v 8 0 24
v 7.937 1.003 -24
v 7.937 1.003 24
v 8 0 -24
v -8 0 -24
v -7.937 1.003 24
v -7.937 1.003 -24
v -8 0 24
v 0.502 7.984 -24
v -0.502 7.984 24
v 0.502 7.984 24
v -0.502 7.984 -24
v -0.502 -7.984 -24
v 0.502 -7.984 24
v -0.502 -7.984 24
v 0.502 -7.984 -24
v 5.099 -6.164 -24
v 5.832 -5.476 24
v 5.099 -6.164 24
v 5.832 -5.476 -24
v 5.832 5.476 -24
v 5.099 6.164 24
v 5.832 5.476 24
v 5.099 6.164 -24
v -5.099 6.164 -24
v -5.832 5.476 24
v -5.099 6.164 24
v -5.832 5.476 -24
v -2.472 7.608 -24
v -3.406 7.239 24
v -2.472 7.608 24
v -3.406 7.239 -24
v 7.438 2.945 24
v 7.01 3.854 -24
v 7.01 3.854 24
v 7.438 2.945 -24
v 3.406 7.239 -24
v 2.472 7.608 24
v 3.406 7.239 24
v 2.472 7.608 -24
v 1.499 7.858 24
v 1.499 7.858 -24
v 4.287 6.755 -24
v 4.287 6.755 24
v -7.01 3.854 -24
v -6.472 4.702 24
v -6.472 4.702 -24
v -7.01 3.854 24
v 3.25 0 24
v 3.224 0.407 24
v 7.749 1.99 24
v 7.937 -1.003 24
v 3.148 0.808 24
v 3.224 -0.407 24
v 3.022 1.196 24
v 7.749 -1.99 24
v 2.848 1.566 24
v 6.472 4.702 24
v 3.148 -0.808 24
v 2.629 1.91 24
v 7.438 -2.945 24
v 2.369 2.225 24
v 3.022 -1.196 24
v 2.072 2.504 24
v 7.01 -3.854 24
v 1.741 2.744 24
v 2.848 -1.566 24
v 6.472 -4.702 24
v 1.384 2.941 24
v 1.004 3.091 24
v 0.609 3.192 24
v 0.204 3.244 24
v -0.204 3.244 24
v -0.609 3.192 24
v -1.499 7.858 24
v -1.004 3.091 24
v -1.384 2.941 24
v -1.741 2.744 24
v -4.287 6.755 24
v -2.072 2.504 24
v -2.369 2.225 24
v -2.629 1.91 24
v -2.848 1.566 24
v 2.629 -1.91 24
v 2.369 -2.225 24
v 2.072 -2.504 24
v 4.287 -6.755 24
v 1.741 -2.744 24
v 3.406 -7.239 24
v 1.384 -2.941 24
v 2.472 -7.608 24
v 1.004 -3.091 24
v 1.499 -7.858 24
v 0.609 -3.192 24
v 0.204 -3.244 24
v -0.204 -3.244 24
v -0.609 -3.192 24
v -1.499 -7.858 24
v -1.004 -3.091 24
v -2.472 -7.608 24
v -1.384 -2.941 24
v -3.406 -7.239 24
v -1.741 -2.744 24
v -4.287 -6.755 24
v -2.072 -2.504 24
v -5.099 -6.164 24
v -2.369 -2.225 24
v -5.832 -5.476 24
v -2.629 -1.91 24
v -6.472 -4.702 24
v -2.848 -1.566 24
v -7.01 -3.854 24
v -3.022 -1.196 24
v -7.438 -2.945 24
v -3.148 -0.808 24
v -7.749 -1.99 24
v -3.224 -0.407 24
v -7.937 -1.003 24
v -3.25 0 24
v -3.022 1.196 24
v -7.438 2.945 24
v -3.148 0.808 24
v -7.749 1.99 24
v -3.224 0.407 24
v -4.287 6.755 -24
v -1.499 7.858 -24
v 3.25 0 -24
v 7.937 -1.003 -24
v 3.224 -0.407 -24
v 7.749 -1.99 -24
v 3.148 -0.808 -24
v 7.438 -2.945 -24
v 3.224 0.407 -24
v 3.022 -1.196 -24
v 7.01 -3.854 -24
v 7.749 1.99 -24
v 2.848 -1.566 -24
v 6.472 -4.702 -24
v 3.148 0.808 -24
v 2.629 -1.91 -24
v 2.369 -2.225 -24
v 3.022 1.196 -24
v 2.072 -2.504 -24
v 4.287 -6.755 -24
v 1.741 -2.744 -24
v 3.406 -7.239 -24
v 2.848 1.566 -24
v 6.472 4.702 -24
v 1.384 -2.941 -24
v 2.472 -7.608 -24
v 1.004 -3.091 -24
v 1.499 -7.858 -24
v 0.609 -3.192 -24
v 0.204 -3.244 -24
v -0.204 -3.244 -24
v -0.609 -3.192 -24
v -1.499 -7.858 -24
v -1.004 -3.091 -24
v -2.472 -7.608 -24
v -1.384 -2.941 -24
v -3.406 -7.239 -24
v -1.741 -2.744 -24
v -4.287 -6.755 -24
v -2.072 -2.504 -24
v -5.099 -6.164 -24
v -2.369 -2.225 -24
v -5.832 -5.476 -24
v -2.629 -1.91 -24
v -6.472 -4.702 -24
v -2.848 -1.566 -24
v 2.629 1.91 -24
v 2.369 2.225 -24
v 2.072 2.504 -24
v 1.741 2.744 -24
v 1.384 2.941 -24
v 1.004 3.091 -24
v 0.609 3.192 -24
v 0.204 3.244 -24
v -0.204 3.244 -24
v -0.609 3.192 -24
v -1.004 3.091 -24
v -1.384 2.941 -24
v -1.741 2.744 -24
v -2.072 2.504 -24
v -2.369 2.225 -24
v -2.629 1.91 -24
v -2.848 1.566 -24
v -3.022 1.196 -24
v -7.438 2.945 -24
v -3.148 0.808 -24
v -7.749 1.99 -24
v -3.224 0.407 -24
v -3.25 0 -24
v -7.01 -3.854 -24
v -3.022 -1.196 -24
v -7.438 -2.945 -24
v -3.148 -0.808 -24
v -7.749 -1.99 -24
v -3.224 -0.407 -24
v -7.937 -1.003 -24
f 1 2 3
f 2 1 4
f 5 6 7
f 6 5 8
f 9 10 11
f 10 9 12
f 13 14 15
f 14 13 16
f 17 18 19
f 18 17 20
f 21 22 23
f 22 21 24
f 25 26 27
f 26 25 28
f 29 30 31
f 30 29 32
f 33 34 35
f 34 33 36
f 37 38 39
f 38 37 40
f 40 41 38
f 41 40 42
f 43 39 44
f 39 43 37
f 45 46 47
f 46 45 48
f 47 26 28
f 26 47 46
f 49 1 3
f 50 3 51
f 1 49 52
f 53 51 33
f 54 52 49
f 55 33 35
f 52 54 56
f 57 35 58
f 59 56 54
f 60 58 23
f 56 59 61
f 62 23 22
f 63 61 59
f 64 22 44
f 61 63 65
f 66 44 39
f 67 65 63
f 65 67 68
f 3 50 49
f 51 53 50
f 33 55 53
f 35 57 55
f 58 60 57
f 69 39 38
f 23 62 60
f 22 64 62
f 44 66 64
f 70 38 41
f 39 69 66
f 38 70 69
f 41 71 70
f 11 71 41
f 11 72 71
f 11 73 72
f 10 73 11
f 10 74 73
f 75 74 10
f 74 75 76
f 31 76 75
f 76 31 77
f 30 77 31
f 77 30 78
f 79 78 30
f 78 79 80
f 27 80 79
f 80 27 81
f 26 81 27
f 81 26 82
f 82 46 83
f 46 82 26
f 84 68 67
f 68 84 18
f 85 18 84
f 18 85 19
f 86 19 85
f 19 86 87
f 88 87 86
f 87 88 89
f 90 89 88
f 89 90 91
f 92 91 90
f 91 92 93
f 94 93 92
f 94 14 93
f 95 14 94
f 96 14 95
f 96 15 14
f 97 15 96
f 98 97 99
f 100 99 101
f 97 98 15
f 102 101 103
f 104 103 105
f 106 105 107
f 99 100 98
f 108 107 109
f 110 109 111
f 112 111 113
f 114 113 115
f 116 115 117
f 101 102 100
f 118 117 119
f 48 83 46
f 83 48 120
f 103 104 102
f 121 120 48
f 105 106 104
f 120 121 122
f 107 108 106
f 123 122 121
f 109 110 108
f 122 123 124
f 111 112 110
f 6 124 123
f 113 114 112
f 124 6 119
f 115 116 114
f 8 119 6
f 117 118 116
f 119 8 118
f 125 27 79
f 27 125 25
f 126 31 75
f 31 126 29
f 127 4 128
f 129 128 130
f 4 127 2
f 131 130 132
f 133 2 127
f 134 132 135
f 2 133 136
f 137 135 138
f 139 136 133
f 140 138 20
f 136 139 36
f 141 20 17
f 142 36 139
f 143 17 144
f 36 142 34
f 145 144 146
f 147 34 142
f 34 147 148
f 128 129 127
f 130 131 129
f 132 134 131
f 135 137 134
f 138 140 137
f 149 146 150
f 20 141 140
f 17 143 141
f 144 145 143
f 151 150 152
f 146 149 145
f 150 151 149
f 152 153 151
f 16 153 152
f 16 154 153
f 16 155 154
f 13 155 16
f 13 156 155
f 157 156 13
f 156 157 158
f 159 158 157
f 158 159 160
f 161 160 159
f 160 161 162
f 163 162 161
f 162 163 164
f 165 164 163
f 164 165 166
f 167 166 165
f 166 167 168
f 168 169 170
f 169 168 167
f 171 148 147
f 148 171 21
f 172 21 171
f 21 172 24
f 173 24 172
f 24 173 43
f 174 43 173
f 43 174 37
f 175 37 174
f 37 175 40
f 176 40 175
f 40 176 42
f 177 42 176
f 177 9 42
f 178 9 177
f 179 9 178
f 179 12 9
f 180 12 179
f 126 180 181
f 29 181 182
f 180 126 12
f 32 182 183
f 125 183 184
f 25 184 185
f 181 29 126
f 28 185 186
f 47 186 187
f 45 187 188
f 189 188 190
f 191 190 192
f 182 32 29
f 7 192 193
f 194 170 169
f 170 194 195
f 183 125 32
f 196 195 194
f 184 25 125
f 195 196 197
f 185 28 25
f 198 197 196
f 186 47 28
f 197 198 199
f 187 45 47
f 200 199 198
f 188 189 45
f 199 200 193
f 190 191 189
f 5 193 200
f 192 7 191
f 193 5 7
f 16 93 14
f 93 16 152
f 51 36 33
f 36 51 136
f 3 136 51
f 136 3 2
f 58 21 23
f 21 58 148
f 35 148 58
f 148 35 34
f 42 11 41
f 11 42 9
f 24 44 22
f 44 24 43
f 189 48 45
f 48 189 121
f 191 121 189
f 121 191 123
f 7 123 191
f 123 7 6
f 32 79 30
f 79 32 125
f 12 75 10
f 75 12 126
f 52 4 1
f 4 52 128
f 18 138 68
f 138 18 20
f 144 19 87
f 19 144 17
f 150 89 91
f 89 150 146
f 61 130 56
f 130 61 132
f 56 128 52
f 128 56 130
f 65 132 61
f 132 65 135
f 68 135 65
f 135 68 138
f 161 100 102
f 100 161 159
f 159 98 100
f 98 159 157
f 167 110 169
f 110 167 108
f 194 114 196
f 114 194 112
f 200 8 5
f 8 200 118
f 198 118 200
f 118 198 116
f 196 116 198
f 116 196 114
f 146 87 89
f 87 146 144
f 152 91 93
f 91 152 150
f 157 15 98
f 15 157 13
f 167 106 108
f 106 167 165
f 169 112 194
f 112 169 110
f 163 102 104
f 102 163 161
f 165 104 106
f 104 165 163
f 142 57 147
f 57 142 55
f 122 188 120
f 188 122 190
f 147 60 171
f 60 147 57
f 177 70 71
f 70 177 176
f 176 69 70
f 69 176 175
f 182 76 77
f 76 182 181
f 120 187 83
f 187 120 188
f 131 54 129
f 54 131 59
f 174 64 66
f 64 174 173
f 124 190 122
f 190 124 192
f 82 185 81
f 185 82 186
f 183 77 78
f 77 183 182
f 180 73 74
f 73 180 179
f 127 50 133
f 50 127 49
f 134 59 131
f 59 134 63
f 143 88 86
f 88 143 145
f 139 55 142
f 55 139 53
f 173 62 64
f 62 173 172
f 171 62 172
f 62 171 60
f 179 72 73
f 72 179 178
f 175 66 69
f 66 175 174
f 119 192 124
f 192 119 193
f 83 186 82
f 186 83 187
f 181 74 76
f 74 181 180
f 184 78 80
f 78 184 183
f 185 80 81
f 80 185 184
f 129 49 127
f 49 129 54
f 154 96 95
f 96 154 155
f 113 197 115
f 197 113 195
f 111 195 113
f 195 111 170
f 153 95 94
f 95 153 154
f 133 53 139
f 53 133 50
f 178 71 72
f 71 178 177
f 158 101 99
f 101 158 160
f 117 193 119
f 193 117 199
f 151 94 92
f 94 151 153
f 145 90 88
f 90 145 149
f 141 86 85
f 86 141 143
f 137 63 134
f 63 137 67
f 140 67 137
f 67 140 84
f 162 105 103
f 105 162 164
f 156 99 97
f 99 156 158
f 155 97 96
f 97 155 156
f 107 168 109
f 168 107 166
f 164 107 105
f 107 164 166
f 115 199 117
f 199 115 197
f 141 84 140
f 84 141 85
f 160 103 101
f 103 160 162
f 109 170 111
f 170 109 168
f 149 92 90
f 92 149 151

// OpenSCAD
$fn = 50;


difference() {
	union() {
		translate(v = [0, 0, -24.0000000000]) {
			cylinder(h = 48, r = 8.0000000000);
		}
	}
	union() {
		translate(v = [0, 0, -100.0000000000]) {
			cylinder(h = 200, r = 3.2500000000);
		}
	}
}
